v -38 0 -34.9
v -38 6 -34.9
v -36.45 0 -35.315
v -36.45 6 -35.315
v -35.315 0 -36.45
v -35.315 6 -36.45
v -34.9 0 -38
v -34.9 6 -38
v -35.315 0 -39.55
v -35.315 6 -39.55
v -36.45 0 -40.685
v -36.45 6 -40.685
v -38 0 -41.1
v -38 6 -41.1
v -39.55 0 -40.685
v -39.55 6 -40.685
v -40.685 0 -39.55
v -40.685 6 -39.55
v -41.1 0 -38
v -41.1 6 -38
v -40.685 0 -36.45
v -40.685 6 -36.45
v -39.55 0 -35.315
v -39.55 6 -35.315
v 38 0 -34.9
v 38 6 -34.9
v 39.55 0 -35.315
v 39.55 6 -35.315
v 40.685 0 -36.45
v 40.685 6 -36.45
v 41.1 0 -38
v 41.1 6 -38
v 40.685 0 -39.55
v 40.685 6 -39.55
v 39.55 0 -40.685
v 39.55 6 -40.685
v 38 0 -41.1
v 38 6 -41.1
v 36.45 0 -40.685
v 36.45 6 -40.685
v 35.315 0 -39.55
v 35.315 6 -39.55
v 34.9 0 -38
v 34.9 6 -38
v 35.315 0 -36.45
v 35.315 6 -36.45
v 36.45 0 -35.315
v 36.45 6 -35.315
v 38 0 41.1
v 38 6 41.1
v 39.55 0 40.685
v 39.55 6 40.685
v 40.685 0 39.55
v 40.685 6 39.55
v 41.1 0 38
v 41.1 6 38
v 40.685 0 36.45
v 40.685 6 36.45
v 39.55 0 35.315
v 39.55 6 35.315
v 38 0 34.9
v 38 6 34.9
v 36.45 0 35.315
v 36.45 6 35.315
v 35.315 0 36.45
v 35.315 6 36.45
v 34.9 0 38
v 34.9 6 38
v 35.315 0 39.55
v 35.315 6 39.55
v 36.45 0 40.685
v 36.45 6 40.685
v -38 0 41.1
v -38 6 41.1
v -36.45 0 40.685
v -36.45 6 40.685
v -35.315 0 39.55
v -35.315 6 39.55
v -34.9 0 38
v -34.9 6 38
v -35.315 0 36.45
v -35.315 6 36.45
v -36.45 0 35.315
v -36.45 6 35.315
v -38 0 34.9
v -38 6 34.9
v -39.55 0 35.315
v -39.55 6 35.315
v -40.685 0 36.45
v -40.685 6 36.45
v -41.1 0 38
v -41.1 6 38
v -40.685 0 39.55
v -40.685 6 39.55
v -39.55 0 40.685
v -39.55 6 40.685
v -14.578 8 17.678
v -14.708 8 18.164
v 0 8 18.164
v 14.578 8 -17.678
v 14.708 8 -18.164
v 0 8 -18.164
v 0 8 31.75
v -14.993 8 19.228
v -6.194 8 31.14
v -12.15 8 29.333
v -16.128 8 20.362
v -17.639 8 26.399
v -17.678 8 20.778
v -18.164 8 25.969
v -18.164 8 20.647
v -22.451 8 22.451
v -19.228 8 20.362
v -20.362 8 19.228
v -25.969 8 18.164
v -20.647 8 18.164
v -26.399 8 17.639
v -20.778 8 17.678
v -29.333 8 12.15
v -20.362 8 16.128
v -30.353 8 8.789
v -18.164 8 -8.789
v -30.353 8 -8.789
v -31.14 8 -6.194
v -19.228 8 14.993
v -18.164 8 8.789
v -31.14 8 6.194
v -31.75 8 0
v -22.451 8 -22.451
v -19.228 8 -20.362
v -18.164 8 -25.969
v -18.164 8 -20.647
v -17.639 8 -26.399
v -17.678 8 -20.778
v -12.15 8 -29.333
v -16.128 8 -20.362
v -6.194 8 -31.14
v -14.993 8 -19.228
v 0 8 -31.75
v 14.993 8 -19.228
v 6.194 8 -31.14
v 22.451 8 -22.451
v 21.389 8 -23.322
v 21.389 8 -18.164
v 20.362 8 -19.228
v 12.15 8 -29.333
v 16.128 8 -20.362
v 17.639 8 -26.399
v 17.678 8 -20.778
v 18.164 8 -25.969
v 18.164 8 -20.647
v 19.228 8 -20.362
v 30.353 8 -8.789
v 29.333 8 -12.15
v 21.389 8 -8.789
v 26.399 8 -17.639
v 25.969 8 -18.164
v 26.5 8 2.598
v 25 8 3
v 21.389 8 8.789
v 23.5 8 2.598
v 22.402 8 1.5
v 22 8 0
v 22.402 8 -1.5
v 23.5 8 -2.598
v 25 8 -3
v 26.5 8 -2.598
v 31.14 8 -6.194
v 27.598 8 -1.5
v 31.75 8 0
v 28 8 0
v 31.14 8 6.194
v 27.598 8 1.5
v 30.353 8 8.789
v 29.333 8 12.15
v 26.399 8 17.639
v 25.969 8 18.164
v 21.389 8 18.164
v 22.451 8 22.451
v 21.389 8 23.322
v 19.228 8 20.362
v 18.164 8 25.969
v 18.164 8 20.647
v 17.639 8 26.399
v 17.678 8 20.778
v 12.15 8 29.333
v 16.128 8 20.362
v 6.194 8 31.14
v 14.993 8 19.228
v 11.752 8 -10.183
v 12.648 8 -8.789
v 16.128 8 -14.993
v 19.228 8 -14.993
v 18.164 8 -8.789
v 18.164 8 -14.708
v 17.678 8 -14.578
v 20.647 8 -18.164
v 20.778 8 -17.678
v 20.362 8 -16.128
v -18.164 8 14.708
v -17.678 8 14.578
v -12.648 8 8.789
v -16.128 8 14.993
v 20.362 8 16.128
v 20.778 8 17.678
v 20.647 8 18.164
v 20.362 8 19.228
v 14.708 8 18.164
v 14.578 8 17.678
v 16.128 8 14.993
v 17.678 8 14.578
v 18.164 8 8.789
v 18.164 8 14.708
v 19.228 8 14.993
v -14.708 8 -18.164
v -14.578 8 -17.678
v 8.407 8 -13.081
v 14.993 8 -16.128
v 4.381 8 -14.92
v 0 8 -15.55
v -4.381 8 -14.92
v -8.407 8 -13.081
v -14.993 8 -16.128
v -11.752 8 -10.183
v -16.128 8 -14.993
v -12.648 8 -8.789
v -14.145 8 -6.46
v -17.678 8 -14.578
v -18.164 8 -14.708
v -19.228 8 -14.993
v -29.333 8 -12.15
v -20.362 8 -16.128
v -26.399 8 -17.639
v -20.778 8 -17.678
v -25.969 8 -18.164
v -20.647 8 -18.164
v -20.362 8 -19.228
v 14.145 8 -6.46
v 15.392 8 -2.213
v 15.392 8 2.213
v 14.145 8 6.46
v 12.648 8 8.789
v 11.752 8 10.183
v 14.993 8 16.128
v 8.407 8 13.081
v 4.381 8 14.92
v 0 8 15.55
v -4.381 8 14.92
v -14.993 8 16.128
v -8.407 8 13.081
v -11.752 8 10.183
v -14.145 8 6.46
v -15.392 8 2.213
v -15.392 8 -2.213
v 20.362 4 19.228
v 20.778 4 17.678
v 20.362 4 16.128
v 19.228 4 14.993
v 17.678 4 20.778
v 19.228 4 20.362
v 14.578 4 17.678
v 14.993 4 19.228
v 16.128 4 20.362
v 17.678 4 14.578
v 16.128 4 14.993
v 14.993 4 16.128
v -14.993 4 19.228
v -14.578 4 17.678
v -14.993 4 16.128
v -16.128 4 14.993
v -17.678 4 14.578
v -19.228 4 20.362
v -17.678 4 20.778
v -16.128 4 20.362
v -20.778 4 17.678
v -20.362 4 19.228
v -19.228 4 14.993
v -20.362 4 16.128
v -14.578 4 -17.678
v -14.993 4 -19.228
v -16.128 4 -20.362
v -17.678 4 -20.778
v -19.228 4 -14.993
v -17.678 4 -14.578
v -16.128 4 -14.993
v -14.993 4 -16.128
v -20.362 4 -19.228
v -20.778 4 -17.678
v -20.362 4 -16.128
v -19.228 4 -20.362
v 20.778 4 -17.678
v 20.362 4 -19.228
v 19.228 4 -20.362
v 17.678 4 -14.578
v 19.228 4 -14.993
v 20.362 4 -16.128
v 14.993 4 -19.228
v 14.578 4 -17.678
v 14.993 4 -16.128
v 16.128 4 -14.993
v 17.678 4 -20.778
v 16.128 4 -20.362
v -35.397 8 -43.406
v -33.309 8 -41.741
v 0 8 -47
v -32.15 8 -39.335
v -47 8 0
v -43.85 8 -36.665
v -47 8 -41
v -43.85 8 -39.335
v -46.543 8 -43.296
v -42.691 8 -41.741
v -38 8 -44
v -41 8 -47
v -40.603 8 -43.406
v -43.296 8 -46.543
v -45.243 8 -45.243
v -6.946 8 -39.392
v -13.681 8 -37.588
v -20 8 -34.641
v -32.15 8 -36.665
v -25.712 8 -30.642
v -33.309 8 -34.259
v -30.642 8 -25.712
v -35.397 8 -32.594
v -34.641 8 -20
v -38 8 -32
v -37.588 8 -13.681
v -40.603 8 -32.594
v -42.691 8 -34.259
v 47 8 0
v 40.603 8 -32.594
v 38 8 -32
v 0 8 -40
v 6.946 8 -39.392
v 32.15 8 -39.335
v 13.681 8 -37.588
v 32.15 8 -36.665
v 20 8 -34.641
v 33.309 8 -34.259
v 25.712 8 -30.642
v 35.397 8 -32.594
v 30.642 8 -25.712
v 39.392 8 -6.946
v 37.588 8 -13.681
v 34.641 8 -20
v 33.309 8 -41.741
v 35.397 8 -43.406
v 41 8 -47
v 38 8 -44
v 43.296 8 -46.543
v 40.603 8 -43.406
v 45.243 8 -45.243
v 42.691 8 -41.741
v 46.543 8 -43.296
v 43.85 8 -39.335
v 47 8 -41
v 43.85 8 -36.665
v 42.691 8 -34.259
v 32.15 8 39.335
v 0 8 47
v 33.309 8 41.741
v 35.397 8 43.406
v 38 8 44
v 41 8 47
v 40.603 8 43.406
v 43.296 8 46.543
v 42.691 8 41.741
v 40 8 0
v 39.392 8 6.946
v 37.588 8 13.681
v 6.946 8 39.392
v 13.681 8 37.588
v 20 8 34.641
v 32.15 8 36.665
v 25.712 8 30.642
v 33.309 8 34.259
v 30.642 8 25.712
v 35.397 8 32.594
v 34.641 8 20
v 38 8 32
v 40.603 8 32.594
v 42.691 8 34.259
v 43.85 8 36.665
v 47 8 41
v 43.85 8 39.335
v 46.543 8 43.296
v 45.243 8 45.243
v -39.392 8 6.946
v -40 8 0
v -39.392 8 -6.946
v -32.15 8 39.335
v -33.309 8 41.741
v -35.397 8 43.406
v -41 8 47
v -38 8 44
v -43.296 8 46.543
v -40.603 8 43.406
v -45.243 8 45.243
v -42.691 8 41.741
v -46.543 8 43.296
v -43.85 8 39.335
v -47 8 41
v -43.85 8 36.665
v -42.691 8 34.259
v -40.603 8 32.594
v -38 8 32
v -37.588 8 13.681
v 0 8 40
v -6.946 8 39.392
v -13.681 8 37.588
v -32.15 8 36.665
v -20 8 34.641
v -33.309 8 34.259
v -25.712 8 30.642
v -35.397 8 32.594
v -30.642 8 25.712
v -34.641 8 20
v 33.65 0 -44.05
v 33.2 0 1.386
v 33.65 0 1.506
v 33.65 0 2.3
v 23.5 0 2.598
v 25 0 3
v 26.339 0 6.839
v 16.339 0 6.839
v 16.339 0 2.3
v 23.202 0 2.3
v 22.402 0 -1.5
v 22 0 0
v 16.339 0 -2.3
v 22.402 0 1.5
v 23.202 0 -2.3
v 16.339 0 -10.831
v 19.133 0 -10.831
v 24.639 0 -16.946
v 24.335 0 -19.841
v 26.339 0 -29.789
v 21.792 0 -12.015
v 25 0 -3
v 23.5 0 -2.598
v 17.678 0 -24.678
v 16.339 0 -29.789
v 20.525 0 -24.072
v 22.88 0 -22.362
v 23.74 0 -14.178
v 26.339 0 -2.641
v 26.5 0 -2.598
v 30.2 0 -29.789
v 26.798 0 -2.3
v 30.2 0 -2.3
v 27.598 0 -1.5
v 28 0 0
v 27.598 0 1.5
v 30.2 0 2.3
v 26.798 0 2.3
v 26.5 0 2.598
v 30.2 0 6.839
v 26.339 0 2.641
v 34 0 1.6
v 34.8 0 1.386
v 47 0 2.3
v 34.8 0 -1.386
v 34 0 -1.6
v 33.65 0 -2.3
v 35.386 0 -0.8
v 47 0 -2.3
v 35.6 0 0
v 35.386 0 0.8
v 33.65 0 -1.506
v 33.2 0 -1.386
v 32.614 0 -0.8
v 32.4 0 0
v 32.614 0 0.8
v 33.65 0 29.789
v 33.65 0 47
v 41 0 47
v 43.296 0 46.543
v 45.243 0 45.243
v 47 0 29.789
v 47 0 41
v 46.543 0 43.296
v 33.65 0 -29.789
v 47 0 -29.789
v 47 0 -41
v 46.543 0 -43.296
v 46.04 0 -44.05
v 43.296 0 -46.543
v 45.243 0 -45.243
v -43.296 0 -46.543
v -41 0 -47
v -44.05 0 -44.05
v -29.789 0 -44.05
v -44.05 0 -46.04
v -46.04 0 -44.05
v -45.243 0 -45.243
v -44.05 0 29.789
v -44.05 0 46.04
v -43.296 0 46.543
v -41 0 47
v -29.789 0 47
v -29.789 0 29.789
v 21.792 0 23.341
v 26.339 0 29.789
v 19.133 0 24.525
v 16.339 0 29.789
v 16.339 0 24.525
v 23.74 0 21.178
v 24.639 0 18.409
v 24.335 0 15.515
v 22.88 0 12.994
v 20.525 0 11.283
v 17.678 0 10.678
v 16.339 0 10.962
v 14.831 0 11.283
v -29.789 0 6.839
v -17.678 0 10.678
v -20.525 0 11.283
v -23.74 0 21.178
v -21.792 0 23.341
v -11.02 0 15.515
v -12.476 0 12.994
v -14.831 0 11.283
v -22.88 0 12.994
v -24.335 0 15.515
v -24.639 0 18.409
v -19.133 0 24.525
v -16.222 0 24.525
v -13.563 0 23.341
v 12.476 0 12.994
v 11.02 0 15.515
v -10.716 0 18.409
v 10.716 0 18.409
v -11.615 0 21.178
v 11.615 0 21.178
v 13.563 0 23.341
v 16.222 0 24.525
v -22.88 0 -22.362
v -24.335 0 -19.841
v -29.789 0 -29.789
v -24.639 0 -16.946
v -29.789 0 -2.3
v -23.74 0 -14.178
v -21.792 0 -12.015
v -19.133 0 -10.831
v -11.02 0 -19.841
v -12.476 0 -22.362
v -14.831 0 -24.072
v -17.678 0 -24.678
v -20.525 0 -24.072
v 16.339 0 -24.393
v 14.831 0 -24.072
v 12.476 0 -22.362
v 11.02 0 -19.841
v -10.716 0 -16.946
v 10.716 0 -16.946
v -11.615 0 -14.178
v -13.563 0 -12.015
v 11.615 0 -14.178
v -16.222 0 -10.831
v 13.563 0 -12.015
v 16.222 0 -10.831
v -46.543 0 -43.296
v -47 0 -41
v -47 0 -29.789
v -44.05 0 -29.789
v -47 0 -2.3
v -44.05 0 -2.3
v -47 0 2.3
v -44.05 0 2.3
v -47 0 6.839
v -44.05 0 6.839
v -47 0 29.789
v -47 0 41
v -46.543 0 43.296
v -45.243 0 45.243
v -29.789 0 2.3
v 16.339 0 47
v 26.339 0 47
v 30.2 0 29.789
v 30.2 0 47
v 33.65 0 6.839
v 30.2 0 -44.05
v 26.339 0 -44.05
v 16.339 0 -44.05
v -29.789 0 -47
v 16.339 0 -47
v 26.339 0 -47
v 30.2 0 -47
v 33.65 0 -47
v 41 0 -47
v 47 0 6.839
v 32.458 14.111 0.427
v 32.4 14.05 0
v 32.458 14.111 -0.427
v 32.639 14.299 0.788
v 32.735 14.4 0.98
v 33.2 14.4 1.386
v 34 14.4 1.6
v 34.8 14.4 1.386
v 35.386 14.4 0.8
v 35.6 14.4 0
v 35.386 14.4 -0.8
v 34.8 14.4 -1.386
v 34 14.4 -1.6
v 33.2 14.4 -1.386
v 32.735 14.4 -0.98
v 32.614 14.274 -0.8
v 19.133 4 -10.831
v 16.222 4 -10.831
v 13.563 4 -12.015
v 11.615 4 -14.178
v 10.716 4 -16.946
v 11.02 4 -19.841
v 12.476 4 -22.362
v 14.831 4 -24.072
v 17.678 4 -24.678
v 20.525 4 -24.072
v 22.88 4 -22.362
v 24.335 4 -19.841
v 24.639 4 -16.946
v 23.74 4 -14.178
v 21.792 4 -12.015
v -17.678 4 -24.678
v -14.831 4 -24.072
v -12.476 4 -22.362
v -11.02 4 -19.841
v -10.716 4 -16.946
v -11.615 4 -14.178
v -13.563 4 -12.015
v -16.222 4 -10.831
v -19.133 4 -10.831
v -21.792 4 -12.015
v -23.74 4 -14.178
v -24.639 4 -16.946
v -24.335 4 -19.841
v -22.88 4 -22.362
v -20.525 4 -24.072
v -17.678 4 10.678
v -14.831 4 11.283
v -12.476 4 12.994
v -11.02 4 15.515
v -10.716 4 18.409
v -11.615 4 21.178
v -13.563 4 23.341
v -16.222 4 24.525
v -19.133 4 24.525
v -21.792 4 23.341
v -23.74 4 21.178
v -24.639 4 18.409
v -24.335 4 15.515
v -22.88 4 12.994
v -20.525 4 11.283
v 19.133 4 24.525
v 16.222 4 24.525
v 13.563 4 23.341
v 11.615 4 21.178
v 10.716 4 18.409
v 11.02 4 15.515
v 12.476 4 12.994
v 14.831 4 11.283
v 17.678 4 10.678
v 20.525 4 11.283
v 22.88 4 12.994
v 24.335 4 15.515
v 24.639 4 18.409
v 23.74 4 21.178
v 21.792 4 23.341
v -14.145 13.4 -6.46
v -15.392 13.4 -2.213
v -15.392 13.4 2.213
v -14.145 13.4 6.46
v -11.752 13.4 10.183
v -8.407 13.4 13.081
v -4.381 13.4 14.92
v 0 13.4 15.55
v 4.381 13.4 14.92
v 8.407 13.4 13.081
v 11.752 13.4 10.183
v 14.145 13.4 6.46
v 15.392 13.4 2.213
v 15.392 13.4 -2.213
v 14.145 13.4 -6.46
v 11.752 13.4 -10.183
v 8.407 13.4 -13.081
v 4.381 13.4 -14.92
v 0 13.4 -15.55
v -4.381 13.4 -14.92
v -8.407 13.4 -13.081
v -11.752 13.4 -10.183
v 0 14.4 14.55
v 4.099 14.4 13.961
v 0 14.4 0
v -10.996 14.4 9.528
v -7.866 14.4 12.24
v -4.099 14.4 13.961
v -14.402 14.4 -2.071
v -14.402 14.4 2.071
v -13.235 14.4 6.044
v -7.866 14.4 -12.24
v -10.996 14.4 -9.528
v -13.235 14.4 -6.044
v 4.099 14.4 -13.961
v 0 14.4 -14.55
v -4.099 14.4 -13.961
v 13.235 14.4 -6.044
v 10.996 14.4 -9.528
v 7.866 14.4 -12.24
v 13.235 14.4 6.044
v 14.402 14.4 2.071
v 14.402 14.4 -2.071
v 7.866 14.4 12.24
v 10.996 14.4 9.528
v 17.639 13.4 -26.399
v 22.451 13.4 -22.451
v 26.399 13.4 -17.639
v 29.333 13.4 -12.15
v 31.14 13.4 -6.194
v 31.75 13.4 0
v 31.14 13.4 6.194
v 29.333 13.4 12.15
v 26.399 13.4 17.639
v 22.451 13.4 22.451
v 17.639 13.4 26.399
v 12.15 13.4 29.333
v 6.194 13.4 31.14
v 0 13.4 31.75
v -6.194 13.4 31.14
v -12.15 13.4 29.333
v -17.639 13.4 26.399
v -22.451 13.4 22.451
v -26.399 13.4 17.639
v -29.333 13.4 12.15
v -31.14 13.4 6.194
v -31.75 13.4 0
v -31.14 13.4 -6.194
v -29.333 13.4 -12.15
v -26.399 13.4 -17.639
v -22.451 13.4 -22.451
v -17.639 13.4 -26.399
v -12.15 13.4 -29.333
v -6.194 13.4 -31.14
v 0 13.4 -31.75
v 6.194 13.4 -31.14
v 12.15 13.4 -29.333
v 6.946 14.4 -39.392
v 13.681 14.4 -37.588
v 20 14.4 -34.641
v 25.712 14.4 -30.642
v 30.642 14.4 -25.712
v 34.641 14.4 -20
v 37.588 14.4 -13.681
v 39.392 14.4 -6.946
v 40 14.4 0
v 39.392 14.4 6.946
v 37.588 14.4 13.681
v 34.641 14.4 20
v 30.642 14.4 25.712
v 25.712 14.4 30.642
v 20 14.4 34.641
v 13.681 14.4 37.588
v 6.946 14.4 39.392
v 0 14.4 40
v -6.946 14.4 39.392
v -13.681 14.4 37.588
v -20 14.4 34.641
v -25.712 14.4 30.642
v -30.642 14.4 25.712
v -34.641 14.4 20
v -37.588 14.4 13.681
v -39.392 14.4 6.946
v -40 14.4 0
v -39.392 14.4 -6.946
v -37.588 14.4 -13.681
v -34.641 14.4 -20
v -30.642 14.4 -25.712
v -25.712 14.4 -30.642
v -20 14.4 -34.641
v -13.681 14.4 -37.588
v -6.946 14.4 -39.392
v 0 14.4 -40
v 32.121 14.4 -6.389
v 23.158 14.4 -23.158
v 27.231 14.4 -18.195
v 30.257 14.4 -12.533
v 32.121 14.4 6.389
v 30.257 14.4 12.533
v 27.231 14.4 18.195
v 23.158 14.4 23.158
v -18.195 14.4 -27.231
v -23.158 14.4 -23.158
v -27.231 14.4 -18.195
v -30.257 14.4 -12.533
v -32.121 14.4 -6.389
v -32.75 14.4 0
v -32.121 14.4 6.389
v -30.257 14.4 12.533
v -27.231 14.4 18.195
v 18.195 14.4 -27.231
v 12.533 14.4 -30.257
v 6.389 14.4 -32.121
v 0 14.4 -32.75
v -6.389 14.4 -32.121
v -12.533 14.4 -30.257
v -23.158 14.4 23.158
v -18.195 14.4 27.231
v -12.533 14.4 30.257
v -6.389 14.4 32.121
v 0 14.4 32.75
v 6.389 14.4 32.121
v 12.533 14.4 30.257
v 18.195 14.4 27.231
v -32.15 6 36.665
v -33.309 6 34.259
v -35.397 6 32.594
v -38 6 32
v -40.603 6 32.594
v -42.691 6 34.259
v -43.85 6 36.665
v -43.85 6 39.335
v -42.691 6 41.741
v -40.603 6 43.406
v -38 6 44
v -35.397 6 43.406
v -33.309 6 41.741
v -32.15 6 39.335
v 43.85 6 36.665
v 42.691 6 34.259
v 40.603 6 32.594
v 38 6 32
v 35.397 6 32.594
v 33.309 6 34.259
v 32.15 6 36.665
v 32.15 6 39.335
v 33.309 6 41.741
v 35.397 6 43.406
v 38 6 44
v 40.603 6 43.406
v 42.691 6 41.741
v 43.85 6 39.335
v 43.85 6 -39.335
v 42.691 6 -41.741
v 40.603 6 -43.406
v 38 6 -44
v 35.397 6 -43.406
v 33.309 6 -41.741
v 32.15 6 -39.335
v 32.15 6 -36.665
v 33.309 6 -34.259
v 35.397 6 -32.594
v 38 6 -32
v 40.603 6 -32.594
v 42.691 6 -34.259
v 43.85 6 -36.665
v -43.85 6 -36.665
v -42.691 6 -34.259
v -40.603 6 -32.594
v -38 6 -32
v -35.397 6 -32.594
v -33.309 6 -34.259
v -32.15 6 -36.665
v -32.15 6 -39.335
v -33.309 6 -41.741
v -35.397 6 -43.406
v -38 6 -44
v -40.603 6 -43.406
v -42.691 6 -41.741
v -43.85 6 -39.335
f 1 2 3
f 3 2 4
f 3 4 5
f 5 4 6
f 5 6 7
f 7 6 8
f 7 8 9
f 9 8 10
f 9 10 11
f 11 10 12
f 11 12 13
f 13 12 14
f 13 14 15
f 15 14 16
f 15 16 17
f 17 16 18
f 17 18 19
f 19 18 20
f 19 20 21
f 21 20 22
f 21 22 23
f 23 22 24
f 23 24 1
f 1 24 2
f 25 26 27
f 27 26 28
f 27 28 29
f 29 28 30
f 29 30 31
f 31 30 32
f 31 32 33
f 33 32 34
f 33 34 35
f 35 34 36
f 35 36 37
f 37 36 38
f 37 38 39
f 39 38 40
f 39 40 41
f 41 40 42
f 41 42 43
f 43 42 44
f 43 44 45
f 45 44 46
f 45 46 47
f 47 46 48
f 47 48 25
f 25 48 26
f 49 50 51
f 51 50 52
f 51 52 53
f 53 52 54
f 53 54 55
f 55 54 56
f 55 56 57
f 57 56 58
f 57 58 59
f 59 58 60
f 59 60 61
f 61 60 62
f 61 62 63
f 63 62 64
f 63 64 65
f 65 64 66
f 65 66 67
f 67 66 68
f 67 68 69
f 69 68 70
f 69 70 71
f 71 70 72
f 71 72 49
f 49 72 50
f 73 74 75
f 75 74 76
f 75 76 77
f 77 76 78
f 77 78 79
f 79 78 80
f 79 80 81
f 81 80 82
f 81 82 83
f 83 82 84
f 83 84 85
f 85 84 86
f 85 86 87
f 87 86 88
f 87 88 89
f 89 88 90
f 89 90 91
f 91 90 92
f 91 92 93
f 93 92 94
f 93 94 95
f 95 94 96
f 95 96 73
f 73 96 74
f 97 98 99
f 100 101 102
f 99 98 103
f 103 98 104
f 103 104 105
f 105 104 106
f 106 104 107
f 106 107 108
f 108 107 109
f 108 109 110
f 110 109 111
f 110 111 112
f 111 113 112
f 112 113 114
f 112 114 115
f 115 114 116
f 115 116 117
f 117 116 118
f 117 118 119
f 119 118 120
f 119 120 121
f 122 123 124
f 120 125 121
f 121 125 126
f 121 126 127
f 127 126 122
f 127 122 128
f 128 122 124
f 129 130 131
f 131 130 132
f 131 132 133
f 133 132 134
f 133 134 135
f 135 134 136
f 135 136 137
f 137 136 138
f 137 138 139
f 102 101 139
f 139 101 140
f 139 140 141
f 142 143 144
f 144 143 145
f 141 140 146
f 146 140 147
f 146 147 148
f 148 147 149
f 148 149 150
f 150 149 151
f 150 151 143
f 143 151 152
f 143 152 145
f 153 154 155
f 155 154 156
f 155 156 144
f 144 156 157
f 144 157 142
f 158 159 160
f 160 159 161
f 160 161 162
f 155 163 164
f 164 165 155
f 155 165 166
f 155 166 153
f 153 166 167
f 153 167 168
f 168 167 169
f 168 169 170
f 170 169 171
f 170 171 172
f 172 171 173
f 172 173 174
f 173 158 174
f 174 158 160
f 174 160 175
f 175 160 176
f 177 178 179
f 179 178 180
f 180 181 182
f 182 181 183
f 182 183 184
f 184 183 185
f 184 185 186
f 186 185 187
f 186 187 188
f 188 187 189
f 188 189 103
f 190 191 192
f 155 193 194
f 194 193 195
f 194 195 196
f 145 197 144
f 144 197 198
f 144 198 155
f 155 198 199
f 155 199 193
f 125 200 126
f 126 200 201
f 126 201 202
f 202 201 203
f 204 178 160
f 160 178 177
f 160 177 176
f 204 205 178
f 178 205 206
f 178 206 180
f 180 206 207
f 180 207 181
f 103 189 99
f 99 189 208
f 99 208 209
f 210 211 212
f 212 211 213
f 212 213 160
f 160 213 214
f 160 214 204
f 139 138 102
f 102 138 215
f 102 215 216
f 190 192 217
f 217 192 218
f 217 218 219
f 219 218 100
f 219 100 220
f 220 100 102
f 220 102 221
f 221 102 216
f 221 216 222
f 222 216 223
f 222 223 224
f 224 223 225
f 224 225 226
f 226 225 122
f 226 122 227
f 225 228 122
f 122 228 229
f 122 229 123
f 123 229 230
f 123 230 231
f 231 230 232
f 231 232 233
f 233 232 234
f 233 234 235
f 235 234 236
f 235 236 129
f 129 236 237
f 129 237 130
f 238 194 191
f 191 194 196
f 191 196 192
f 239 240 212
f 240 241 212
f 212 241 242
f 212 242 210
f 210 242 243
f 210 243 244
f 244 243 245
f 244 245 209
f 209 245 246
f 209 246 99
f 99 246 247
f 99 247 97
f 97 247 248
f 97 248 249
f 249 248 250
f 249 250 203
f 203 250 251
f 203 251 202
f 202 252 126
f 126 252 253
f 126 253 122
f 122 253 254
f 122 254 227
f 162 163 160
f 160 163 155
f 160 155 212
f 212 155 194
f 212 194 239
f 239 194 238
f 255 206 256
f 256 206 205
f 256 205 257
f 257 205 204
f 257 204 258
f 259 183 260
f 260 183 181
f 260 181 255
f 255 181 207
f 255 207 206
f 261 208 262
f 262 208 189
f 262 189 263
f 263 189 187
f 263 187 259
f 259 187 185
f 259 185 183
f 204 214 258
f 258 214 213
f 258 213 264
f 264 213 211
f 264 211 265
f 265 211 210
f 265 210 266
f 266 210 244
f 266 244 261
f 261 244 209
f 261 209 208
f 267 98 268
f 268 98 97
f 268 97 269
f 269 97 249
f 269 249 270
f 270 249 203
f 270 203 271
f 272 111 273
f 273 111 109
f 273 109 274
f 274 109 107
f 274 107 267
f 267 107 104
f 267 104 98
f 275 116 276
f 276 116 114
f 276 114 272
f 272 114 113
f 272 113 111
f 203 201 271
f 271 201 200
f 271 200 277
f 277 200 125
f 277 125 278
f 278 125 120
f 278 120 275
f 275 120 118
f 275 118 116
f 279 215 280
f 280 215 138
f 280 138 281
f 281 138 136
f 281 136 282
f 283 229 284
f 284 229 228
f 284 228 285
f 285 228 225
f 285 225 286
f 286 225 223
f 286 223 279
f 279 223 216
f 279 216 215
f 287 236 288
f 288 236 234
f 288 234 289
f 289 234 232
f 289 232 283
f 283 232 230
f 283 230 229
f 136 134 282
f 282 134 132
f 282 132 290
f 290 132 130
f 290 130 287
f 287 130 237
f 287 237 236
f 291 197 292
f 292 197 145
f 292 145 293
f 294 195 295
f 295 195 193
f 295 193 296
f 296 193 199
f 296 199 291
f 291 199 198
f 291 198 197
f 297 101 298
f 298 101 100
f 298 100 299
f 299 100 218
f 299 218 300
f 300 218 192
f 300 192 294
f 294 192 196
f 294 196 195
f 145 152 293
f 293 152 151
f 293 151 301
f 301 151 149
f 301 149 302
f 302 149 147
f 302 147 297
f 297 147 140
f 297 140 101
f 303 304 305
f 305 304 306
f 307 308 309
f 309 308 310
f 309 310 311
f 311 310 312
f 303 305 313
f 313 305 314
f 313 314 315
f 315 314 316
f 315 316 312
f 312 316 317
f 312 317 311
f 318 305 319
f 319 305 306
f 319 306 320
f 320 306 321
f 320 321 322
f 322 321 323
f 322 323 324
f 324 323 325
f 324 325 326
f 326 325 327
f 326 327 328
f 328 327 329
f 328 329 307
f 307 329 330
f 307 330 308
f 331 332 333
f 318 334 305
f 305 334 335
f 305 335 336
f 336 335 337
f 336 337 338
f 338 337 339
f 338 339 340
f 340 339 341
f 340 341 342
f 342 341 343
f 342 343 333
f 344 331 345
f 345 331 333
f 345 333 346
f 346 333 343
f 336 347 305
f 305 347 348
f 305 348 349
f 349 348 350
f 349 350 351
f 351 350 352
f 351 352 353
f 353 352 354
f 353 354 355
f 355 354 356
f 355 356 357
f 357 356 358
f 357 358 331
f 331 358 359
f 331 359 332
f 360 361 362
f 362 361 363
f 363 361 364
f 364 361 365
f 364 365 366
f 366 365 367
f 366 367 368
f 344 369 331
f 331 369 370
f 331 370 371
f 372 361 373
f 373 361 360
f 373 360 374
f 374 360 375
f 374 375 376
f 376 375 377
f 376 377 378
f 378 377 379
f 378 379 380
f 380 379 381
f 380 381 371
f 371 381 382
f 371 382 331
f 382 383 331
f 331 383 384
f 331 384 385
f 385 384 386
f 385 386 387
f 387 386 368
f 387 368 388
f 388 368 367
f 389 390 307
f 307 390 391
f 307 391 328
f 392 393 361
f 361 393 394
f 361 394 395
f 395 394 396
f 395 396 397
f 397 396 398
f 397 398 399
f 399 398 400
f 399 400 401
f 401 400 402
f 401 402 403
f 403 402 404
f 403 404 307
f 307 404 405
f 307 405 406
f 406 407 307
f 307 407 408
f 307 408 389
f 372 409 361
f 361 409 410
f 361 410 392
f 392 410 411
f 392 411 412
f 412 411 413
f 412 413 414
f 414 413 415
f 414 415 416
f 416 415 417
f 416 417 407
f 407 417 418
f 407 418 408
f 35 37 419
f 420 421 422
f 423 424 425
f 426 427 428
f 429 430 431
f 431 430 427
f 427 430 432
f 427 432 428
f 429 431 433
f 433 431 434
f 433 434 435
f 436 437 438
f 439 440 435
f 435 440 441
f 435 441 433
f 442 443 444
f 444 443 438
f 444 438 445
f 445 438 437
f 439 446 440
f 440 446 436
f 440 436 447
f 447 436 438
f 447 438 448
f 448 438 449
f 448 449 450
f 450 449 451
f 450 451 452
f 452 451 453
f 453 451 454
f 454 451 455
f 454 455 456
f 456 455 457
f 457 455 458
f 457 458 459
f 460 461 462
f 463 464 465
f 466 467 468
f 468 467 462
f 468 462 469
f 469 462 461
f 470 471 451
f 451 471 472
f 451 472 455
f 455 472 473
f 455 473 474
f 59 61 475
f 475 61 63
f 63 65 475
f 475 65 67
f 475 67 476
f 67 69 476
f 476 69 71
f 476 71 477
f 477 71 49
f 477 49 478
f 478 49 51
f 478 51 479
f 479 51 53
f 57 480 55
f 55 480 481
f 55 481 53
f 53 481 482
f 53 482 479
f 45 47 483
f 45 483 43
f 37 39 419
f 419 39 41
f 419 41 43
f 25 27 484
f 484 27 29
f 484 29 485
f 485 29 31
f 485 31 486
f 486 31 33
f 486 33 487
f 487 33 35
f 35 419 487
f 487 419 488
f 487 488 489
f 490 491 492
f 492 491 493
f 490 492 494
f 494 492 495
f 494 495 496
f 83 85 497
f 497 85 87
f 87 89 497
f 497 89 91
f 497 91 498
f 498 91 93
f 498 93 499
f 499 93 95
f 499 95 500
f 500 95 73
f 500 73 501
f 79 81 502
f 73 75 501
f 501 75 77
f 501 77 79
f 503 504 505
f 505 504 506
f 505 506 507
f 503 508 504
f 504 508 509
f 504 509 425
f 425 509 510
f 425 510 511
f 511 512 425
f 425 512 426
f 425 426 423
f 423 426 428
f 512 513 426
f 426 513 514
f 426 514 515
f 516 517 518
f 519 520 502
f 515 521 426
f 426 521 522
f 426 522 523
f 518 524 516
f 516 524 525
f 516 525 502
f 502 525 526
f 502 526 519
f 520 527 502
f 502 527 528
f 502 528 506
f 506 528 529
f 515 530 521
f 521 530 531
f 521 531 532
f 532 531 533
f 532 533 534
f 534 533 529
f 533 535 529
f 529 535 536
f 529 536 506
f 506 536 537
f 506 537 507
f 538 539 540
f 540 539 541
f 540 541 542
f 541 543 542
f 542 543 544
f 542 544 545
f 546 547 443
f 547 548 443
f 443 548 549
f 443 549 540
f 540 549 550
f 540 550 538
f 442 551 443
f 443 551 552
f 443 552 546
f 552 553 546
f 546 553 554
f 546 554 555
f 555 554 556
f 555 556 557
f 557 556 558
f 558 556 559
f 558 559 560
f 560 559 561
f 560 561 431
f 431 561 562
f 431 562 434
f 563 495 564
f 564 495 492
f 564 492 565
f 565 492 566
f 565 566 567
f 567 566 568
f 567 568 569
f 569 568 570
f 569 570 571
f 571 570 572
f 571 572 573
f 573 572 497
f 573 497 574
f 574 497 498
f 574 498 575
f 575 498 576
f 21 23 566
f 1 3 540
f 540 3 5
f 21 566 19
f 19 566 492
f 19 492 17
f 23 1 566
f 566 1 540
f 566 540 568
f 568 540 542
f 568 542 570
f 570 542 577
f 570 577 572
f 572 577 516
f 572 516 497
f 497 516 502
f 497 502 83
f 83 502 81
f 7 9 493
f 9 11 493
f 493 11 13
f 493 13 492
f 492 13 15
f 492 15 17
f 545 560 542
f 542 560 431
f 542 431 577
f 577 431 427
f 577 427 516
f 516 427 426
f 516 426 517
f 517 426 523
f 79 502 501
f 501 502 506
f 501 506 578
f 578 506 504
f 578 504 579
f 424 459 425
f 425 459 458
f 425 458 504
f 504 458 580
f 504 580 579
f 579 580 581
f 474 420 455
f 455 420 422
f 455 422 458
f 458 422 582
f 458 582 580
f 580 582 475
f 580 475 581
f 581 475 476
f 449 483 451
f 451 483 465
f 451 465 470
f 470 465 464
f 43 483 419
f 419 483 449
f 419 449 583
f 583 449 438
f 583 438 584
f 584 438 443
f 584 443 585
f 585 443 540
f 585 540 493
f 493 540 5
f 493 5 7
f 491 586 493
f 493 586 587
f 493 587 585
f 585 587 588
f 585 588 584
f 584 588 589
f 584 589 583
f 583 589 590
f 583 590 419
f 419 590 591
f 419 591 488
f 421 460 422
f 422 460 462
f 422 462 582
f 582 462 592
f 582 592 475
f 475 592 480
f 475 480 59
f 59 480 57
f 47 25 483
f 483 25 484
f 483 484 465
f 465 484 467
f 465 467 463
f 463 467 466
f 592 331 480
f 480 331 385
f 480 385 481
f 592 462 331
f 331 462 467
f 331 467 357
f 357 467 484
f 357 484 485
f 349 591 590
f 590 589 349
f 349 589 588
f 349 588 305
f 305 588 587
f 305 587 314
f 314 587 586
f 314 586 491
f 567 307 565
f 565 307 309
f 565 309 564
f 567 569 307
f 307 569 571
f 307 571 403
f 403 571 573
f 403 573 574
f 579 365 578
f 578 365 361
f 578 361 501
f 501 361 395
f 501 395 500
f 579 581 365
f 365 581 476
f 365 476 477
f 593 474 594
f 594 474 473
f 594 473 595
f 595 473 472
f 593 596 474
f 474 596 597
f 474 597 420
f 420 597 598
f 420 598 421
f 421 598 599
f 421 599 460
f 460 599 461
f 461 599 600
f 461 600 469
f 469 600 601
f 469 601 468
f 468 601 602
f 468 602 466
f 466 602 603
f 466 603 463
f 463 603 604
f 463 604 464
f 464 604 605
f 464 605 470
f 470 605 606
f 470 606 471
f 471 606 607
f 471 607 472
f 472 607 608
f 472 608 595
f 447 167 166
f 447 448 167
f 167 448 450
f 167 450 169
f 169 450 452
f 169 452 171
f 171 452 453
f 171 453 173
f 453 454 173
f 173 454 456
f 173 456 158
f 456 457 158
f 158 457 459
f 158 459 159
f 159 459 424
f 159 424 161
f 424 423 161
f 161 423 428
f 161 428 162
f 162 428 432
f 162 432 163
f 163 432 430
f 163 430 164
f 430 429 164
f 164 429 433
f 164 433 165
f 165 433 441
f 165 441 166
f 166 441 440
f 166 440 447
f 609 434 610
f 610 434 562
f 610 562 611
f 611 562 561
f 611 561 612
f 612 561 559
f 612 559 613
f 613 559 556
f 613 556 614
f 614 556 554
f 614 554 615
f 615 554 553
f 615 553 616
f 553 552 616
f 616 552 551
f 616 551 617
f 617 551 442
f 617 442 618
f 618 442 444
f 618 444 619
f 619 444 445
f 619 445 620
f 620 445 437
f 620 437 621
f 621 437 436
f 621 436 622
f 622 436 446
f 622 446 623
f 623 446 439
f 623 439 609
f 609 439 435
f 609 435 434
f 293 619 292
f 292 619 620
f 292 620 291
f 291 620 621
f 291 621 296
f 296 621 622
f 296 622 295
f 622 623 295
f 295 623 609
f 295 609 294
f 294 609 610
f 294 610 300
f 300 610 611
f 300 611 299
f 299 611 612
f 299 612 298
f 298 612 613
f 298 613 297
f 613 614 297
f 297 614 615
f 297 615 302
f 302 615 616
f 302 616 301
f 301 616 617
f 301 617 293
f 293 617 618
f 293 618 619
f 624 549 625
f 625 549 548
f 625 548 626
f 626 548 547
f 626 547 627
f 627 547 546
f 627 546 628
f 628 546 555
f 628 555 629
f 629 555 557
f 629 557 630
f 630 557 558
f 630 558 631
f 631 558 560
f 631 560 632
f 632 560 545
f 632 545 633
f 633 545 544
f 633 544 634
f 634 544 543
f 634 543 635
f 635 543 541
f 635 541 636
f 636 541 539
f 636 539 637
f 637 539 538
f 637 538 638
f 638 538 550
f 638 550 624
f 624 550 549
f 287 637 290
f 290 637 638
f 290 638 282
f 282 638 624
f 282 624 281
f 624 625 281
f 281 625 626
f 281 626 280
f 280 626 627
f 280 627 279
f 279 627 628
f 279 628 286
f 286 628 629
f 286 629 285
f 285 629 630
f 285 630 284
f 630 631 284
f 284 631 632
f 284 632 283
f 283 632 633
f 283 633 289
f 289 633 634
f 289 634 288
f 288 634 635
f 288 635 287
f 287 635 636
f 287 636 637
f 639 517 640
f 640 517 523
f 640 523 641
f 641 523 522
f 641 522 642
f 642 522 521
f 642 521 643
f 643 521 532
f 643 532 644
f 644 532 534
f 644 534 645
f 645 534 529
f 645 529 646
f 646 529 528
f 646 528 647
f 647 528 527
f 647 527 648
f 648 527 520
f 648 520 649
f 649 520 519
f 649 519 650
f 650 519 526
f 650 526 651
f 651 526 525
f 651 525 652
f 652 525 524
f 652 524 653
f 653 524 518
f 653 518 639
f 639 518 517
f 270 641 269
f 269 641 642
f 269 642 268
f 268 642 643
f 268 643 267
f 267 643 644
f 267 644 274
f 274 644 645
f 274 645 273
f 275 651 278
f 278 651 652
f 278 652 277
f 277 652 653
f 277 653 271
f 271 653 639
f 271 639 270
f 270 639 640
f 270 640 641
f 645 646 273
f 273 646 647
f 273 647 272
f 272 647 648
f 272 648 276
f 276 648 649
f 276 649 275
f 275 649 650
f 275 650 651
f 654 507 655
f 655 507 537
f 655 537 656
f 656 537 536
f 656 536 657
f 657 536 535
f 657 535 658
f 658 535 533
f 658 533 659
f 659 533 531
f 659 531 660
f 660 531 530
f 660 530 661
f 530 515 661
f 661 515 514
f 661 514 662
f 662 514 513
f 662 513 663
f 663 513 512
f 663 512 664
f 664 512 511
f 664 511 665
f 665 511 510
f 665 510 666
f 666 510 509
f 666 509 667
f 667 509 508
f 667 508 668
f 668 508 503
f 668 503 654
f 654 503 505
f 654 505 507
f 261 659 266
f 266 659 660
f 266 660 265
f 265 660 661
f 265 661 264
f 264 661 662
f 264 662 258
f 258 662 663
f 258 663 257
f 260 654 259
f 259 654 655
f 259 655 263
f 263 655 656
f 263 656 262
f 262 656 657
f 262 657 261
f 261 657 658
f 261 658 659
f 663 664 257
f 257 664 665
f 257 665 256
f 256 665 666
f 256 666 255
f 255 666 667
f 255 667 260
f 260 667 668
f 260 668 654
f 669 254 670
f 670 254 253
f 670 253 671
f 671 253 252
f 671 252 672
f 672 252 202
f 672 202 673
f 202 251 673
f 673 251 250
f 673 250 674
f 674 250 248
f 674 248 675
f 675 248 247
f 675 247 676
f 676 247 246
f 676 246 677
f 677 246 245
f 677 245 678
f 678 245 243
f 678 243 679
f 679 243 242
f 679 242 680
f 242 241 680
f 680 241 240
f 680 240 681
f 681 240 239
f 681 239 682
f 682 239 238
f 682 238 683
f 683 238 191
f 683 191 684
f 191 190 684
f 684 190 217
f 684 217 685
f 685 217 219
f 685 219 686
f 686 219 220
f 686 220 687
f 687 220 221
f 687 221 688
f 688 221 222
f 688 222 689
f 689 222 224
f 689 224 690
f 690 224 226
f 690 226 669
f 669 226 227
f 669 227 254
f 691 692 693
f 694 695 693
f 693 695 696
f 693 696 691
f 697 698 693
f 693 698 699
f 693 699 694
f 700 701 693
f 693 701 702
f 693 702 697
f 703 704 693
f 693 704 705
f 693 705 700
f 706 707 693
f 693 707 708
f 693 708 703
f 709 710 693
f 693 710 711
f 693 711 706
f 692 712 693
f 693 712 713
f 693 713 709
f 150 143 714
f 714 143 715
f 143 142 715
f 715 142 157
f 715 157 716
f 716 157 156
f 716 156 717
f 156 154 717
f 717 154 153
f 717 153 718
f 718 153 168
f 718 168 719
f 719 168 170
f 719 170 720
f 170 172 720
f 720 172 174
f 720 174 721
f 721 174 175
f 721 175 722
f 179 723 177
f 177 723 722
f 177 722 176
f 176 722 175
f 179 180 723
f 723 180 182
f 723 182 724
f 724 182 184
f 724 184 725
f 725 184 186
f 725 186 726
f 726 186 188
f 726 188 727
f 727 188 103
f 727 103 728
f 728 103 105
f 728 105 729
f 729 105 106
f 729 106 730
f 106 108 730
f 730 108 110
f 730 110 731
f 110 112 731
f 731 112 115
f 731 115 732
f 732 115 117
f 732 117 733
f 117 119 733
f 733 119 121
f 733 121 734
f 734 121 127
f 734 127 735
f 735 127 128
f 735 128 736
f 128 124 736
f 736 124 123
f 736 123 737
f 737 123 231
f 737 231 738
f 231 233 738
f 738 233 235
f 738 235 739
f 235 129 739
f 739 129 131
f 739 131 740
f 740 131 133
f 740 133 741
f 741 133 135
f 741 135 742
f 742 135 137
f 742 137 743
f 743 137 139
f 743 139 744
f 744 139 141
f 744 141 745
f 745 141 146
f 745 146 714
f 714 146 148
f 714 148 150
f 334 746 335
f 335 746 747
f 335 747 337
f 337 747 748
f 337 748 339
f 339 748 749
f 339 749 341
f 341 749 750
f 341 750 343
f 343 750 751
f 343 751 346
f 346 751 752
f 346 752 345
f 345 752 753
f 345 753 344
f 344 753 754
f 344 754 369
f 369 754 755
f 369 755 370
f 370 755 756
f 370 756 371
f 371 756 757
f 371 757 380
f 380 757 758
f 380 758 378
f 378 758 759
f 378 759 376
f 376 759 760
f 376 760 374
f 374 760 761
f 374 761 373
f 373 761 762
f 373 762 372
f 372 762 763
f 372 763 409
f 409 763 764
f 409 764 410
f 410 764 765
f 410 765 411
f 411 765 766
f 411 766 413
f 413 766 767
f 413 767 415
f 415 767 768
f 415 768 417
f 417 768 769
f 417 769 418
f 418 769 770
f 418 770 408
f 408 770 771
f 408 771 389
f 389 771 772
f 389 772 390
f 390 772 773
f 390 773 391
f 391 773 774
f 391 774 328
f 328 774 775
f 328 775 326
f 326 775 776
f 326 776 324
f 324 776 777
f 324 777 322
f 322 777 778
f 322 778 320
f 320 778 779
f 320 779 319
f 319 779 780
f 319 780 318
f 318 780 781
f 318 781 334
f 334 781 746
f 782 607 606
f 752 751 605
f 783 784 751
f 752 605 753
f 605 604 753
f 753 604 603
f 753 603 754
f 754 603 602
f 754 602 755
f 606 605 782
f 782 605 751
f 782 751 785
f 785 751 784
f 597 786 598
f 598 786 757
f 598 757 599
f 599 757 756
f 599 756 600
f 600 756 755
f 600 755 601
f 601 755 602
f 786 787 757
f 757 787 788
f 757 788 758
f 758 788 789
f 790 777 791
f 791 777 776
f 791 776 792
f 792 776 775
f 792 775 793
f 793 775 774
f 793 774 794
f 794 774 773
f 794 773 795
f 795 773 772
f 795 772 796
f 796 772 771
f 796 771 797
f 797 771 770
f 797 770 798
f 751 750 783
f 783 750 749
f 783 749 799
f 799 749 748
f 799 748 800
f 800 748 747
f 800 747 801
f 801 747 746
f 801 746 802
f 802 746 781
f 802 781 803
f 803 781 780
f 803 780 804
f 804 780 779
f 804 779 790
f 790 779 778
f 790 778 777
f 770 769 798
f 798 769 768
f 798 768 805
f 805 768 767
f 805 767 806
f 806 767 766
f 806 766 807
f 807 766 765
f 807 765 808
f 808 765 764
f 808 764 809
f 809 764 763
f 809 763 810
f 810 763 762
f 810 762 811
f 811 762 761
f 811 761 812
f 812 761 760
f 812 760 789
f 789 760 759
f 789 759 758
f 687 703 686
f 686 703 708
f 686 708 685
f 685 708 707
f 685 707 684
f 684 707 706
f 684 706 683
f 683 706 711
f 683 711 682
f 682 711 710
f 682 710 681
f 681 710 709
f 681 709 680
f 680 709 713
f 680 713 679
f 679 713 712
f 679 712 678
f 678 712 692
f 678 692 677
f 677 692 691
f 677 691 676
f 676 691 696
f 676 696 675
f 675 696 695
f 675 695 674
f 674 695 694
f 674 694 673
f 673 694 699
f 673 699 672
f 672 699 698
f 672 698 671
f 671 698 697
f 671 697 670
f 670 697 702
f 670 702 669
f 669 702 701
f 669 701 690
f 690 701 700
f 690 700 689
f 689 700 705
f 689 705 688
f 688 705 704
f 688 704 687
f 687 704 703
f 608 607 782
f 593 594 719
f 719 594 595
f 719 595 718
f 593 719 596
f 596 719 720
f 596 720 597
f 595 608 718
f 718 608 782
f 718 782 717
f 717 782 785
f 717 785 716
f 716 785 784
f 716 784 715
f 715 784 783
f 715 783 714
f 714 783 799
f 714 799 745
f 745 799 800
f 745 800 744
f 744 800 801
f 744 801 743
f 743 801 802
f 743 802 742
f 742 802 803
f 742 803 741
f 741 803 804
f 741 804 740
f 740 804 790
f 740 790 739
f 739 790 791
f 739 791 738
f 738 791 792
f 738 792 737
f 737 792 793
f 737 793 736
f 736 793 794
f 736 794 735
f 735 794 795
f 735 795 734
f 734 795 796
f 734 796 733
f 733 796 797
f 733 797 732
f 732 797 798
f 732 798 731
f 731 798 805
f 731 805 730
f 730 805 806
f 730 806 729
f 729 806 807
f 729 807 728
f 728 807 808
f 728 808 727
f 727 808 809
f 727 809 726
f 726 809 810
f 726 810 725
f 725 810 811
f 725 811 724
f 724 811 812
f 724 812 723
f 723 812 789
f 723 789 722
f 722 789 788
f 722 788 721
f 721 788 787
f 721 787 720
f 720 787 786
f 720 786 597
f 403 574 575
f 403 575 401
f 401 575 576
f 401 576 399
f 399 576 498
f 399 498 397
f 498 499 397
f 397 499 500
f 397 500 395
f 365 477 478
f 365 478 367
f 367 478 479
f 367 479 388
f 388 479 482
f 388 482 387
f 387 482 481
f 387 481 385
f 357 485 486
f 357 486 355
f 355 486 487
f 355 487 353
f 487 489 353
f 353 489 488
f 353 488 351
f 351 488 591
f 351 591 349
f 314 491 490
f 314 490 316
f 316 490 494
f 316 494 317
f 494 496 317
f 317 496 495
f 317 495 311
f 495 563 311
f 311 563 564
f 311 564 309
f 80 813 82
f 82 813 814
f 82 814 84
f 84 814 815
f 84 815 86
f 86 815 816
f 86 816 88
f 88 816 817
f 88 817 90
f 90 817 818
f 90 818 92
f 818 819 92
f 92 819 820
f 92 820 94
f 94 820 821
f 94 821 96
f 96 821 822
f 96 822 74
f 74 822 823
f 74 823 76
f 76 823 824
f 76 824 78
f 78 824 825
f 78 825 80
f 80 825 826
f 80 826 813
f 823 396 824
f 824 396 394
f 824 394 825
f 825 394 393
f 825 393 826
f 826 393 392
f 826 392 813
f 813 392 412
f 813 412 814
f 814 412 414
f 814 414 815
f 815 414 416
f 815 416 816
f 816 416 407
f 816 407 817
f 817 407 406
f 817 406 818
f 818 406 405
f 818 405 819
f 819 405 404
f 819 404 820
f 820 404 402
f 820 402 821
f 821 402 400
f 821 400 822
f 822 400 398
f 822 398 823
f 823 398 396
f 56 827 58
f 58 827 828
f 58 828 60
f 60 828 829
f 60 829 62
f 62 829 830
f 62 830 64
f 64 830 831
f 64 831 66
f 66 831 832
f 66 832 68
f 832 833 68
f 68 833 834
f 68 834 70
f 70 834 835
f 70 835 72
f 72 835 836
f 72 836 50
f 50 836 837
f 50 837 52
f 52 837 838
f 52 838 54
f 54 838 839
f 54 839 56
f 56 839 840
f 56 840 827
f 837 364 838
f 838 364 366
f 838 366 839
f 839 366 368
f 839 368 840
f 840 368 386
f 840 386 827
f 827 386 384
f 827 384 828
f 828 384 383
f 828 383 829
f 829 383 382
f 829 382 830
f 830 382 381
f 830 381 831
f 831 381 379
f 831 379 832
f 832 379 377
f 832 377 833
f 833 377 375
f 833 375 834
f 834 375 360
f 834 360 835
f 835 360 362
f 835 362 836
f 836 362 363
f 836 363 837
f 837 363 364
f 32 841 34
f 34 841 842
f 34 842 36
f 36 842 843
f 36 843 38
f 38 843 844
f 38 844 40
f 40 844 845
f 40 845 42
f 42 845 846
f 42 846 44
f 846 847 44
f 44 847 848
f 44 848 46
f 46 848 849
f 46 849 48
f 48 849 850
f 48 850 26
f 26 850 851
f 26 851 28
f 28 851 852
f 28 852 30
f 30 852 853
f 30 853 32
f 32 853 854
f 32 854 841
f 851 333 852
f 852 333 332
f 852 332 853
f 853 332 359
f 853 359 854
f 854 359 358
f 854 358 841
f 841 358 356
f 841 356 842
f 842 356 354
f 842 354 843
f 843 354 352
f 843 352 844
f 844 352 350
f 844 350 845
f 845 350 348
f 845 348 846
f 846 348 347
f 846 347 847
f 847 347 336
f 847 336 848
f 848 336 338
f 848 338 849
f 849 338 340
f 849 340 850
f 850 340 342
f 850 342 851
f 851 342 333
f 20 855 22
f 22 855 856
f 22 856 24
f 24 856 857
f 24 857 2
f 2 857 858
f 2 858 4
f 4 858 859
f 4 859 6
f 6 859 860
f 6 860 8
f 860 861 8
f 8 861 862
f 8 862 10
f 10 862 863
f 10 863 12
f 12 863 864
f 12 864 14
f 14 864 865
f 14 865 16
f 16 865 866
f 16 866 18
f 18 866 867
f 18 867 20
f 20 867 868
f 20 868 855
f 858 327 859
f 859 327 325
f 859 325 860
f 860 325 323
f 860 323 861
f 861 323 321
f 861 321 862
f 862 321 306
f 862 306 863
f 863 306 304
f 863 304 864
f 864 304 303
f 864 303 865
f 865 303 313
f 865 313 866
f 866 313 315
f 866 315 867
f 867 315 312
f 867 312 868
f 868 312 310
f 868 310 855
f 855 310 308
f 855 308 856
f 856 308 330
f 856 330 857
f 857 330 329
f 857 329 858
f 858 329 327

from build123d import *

# Parameters (mm, degrees)
SKETCH1_W           = 94
SKETCH1_H           = 94
SKETCH1_R           = 1.6
SKETCH1_R_2         = 3.1
SKETCH1_R_3         = 3
BOSS_EXTRUDE1_DEPTH = 8
SKETCH2_R           = 7
CUT_EXTRUDE1_DEPTH  = 4
SKETCH3_R           = 40
SKETCH3_R_2         = 1.6
SKETCH3_R_3         = 31.75
SKETCH3_R_4         = 15.55
BOSS_EXTRUDE2_DEPTH = 6.4
CHAMFER1_SIZE       = 1
FILLET1_R           = 6
SKETCH5_R           = 3.1
CUT_EXTRUDE2_DEPTH  = 67.947740825
SKETCH6_R           = 6
CUT_EXTRUDE3_DEPTH  = 2


with BuildPart() as part:
    # Sketch1 → Boss-Extrude1 (new body)
    with BuildSketch(Plane(origin=(0, 0, 0), x_dir=(1, 0, 0), z_dir=(0, 1, 0))):
        Rectangle(SKETCH1_W, SKETCH1_H)
        with Locations(Location((34, 0, 0), (0, 0, 270))):
            Circle(SKETCH1_R, mode=Mode.SUBTRACT)
        with Locations(Location((17.67766953, -17.67766953, 0), (0, 0, 270))):
            Circle(SKETCH1_R_2, mode=Mode.SUBTRACT)
        with Locations(Location((25, 0, 0), (0, 0, 270))):
            Circle(SKETCH1_R_3, mode=Mode.SUBTRACT)
        with Locations(Location((-17.67766953, -17.67766953, 0), (0, 0, 270))):
            Circle(SKETCH1_R_2, mode=Mode.SUBTRACT)
        with Locations(Location((-17.67766953, 17.67766953, 0), (0, 0, 270))):
            Circle(SKETCH1_R_2, mode=Mode.SUBTRACT)
        with Locations(Location((17.67766953, 17.67766953, 0), (0, 0, 270))):
            Circle(SKETCH1_R_2, mode=Mode.SUBTRACT)
    extrude(amount=BOSS_EXTRUDE1_DEPTH)

    # Sketch2 → Cut-Extrude1 (cut)
    with BuildSketch(Plane.XZ):
        with Locations(Location((17.67766953, 17.67766953, 0), (0, 0, 270))):
            Circle(SKETCH2_R)
        with Locations(Location((17.67766953, -17.67766953, 0), (0, 0, 270))):
            Circle(SKETCH2_R)
        with Locations(Location((-17.67766953, -17.67766953, 0), (0, 0, 270))):
            Circle(SKETCH2_R)
        with Locations(Location((-17.67766953, 17.67766953, 0), (0, 0, 270))):
            Circle(SKETCH2_R)
    extrude(amount=-CUT_EXTRUDE1_DEPTH, mode=Mode.SUBTRACT)

    # Sketch3 → Boss-Extrude2 (add)
    # profile 1 of 2: a face of its own
    with BuildSketch(Plane(origin=(0, 8, 0), x_dir=(1, 0, 0), z_dir=(0, 1, 0))):
        with Locations(Location((0, 0, 0), (0, 0, 270))):
            Circle(SKETCH3_R)
        with Locations(Location((34, 0, 0), (0, 0, 270))):
            Circle(SKETCH3_R_2, mode=Mode.SUBTRACT)
        with Locations(Location((0, 0, 0), (0, 0, 270))):
            Circle(SKETCH3_R_3, mode=Mode.SUBTRACT)
    # profile 2 of 2: a face of its own
    with BuildSketch(Plane(origin=(0, 8, 0), x_dir=(1, 0, 0), z_dir=(0, 1, 0))):
        with Locations(Location((0, 0, 0), (0, 0, 270))):
            Circle(SKETCH3_R_4)
    extrude(amount=BOSS_EXTRUDE2_DEPTH)

    # Chamfer1
    # the kernel refuses this chamfer: 1 mm, written as the material it takes off along each edge
    with BuildSketch(Plane(origin=(0, 14.4, 0), x_dir=(0, 0, 1), z_dir=(-1, 0, 0))) as chamfer1_piece_1:
        Polygon((15.55, -CHAMFER1_SIZE), (15.55 - CHAMFER1_SIZE, 0), (15.55, 0), align=None)
    revolve(axis=Axis((0, 14.4, 0), (0, 1, 0)), mode=Mode.SUBTRACT)
    with BuildSketch(Plane(origin=(0, 14.4, 0), x_dir=(0, 0, 1), z_dir=(-1, 0, 0))) as chamfer1_piece_2:
        Polygon((31.75 + CHAMFER1_SIZE, 0), (31.75, -CHAMFER1_SIZE), (31.75, 0), align=None)
    revolve(axis=Axis((0, 14.4, 0), (0, 1, 0)), mode=Mode.SUBTRACT)

    # Fillet1
    fillet1_edges = [part.edges().sort_by_distance(p)[0] for p in [
        (47, 4, 47),
        (-47, 4, 47),
        (-47, 4, -47),
        (47, 4, -47),
    ]]
    fillet(fillet1_edges, radius=FILLET1_R)

    # Sketch5 → Cut-Extrude2 (cut, through all)
    with BuildSketch(Plane(origin=(0, 8, 0), x_dir=(1, 0, 0), z_dir=(0, 1, 0))):
        with Locations(Location((-38, 38, 0), (0, 0, 270))):
            Circle(SKETCH5_R)
        with Locations(Location((38, 38, 0), (0, 0, 270))):
            Circle(SKETCH5_R)
        with Locations(Location((38, -38, 0), (0, 0, 270))):
            Circle(SKETCH5_R)
        with Locations(Location((-38, -38, 0), (0, 0, 270))):
            Circle(SKETCH5_R)
    extrude(amount=-CUT_EXTRUDE2_DEPTH, mode=Mode.SUBTRACT)

    # Sketch6 → Cut-Extrude3 (cut)
    with BuildSketch(Plane(origin=(0, 8, 0), x_dir=(1, 0, 0), z_dir=(0, 1, 0))):
        with Locations(Location((-38, 38, 0), (0, 0, 270))):
            Circle(SKETCH6_R)
        with Locations(Location((38, 38, 0), (0, 0, 270))):
            Circle(SKETCH6_R)
        with Locations(Location((38, -38, 0), (0, 0, 270))):
            Circle(SKETCH6_R)
        with Locations(Location((-38, -38, 0), (0, 0, 270))):
            Circle(SKETCH6_R)
    extrude(amount=-CUT_EXTRUDE3_DEPTH, mode=Mode.SUBTRACT)


solid = part.part
